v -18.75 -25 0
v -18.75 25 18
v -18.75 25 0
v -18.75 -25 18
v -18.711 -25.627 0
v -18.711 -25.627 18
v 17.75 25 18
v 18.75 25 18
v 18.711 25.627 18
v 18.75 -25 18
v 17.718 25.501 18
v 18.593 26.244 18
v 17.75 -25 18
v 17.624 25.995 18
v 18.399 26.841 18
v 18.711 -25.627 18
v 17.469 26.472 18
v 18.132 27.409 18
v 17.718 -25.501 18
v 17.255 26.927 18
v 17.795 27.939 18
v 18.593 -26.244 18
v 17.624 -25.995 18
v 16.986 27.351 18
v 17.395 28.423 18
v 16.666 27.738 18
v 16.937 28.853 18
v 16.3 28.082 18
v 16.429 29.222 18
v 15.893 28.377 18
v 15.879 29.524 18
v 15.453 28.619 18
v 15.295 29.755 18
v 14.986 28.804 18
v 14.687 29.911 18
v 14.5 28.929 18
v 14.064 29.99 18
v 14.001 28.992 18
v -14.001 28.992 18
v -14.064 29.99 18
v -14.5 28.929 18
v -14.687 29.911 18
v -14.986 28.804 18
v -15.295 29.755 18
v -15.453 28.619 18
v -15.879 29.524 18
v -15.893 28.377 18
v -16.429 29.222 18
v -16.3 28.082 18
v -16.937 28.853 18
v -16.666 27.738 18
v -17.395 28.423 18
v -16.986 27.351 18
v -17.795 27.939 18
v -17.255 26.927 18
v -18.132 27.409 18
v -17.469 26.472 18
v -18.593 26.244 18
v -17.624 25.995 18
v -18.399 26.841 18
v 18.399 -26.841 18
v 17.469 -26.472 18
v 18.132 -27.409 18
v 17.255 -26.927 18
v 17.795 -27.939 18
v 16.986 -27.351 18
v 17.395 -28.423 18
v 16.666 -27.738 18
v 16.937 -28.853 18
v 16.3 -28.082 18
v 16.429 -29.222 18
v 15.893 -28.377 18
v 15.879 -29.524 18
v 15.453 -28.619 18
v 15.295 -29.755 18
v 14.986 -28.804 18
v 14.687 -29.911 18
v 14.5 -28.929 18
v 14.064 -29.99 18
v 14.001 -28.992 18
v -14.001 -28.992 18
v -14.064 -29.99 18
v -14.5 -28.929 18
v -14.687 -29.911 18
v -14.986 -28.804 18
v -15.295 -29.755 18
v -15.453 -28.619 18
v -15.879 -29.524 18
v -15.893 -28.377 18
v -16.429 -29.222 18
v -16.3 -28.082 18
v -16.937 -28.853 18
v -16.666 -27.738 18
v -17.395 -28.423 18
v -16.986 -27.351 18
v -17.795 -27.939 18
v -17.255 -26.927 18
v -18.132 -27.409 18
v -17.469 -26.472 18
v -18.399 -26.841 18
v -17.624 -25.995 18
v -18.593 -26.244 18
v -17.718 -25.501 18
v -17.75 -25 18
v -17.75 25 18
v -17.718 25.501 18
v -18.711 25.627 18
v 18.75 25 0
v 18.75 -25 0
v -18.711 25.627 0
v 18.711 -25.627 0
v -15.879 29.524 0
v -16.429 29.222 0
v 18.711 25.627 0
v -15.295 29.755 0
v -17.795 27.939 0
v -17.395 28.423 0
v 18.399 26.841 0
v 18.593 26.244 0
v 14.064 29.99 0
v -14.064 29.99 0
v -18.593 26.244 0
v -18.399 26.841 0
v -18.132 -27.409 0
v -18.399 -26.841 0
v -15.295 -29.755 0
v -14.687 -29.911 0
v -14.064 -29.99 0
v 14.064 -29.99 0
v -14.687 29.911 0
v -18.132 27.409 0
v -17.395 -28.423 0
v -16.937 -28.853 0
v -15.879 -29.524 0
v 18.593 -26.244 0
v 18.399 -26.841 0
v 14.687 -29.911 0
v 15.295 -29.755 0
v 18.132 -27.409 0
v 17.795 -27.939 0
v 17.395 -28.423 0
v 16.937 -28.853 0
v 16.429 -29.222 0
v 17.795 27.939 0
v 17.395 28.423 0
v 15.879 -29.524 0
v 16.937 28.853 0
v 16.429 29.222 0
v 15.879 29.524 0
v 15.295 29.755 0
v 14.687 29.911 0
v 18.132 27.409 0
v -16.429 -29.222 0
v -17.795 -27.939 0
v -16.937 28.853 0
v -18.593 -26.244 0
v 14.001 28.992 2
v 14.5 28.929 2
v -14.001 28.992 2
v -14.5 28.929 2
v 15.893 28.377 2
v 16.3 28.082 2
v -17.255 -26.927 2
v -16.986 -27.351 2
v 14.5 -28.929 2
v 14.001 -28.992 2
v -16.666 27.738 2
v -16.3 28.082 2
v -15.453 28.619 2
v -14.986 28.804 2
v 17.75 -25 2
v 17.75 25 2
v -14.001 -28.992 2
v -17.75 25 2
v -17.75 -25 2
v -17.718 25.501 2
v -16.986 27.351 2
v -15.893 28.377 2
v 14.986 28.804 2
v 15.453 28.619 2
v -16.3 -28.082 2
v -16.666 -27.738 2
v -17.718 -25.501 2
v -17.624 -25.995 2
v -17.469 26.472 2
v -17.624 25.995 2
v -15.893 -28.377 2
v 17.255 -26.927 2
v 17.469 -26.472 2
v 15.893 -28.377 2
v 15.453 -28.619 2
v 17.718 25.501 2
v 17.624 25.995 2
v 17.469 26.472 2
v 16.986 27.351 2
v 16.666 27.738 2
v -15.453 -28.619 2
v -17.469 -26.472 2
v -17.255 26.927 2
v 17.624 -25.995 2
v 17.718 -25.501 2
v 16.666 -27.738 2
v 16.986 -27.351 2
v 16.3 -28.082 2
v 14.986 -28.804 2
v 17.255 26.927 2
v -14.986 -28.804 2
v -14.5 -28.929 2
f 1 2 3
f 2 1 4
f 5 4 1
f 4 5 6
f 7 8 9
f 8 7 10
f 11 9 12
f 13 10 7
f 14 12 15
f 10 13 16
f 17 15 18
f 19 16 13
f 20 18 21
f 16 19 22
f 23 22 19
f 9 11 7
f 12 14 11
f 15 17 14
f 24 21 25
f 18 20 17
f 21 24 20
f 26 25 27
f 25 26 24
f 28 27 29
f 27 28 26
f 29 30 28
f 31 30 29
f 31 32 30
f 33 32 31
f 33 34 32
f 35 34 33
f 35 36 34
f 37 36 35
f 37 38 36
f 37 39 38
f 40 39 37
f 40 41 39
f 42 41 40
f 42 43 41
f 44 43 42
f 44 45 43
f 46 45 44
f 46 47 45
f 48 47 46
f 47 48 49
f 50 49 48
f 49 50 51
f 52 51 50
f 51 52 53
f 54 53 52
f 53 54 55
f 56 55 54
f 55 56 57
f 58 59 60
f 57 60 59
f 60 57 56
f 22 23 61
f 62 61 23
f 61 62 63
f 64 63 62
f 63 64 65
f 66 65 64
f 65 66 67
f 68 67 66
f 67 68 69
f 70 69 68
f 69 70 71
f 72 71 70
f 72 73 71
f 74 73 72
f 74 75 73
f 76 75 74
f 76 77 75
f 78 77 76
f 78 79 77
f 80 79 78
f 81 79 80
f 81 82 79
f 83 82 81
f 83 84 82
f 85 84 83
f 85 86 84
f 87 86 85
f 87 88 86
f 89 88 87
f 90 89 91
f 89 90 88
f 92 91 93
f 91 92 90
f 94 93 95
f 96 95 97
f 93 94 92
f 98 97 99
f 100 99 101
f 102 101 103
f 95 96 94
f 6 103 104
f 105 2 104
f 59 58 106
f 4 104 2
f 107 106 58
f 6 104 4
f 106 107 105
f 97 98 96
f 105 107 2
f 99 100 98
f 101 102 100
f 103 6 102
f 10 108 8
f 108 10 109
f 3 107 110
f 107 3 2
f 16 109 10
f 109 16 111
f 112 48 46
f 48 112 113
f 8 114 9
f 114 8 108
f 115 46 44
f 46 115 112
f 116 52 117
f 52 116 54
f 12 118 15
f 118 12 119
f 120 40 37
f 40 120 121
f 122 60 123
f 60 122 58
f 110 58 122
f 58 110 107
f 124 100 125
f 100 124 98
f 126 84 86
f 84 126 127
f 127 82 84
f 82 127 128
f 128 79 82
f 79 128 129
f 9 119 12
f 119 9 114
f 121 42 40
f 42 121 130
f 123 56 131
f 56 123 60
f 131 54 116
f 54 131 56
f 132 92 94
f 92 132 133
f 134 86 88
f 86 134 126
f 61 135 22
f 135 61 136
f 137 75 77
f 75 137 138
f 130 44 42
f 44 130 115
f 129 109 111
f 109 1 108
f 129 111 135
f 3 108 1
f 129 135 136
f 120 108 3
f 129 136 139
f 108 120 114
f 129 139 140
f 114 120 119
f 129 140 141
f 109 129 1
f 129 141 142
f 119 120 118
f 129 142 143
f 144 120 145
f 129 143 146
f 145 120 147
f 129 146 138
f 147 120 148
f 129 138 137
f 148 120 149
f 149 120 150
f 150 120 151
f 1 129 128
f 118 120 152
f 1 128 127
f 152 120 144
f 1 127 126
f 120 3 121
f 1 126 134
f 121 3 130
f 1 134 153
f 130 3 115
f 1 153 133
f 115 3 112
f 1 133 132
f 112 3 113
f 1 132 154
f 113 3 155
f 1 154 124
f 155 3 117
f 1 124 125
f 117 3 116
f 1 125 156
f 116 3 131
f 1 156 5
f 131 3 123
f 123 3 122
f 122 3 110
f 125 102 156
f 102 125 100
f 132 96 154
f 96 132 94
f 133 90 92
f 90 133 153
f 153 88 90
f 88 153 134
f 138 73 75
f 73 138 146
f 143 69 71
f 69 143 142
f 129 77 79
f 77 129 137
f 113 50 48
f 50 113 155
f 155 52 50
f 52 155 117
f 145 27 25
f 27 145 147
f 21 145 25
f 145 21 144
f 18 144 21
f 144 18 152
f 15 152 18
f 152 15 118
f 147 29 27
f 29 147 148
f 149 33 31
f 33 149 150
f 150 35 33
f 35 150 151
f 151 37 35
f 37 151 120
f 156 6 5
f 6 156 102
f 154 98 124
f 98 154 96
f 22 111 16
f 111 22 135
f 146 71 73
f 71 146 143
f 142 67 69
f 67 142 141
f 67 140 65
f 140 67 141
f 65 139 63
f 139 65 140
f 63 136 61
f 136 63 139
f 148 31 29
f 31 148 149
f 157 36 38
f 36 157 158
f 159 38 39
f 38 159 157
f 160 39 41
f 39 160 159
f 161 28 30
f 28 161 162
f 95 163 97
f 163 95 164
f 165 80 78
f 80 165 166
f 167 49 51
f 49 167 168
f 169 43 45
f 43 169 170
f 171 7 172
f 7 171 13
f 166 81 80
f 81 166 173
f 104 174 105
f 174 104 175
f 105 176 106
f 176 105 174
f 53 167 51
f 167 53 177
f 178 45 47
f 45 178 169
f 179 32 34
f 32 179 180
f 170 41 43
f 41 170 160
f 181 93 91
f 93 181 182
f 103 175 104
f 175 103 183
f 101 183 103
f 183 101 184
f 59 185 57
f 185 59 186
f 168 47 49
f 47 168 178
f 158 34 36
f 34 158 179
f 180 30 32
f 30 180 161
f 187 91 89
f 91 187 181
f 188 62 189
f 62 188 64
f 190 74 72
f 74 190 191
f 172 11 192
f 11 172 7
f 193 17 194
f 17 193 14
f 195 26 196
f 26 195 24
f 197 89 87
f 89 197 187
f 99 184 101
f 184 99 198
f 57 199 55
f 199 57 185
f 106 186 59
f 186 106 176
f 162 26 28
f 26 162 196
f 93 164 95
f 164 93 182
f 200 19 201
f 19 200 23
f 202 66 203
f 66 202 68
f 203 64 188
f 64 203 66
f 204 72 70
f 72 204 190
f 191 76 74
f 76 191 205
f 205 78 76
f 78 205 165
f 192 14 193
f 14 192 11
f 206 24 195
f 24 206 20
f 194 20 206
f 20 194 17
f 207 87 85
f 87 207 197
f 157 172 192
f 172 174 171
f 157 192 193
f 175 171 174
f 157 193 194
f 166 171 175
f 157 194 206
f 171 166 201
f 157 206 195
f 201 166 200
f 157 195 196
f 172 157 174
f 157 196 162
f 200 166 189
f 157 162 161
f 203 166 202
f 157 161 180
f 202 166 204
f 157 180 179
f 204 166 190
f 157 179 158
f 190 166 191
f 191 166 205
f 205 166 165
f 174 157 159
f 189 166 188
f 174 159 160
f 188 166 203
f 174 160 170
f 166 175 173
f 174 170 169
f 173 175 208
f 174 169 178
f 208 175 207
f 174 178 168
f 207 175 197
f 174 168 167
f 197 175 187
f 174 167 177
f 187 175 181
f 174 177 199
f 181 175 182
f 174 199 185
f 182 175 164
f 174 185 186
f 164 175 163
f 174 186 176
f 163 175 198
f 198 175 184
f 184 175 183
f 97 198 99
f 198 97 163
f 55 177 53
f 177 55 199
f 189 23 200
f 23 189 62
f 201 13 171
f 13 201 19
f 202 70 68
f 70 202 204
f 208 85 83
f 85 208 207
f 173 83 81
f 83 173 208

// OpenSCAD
$fn = 50;


difference() {
	union() {
		hull() {
			translate(v = [-13.7500000000, 25.0000000000, 0]) {
				cylinder(h = 18, r = 5);
			}
			translate(v = [13.7500000000, 25.0000000000, 0]) {
				cylinder(h = 18, r = 5);
			}
			translate(v = [-13.7500000000, -25.0000000000, 0]) {
				cylinder(h = 18, r = 5);
			}
			translate(v = [13.7500000000, -25.0000000000, 0]) {
				cylinder(h = 18, r = 5);
			}
		}
	}
	union() {
		translate(v = [0, 0, 2]) {
			#hull() {
				translate(v = [-13.7500000000, 25.0000000000, 0]) {
					cylinder(h = 16, r = 4);
				}
				translate(v = [13.7500000000, 25.0000000000, 0]) {
					cylinder(h = 16, r = 4);
				}
				translate(v = [-13.7500000000, -25.0000000000, 0]) {
					cylinder(h = 16, r = 4);
				}
				translate(v = [13.7500000000, -25.0000000000, 0]) {
					cylinder(h = 16, r = 4);
				}
			}
		}
	}
}
